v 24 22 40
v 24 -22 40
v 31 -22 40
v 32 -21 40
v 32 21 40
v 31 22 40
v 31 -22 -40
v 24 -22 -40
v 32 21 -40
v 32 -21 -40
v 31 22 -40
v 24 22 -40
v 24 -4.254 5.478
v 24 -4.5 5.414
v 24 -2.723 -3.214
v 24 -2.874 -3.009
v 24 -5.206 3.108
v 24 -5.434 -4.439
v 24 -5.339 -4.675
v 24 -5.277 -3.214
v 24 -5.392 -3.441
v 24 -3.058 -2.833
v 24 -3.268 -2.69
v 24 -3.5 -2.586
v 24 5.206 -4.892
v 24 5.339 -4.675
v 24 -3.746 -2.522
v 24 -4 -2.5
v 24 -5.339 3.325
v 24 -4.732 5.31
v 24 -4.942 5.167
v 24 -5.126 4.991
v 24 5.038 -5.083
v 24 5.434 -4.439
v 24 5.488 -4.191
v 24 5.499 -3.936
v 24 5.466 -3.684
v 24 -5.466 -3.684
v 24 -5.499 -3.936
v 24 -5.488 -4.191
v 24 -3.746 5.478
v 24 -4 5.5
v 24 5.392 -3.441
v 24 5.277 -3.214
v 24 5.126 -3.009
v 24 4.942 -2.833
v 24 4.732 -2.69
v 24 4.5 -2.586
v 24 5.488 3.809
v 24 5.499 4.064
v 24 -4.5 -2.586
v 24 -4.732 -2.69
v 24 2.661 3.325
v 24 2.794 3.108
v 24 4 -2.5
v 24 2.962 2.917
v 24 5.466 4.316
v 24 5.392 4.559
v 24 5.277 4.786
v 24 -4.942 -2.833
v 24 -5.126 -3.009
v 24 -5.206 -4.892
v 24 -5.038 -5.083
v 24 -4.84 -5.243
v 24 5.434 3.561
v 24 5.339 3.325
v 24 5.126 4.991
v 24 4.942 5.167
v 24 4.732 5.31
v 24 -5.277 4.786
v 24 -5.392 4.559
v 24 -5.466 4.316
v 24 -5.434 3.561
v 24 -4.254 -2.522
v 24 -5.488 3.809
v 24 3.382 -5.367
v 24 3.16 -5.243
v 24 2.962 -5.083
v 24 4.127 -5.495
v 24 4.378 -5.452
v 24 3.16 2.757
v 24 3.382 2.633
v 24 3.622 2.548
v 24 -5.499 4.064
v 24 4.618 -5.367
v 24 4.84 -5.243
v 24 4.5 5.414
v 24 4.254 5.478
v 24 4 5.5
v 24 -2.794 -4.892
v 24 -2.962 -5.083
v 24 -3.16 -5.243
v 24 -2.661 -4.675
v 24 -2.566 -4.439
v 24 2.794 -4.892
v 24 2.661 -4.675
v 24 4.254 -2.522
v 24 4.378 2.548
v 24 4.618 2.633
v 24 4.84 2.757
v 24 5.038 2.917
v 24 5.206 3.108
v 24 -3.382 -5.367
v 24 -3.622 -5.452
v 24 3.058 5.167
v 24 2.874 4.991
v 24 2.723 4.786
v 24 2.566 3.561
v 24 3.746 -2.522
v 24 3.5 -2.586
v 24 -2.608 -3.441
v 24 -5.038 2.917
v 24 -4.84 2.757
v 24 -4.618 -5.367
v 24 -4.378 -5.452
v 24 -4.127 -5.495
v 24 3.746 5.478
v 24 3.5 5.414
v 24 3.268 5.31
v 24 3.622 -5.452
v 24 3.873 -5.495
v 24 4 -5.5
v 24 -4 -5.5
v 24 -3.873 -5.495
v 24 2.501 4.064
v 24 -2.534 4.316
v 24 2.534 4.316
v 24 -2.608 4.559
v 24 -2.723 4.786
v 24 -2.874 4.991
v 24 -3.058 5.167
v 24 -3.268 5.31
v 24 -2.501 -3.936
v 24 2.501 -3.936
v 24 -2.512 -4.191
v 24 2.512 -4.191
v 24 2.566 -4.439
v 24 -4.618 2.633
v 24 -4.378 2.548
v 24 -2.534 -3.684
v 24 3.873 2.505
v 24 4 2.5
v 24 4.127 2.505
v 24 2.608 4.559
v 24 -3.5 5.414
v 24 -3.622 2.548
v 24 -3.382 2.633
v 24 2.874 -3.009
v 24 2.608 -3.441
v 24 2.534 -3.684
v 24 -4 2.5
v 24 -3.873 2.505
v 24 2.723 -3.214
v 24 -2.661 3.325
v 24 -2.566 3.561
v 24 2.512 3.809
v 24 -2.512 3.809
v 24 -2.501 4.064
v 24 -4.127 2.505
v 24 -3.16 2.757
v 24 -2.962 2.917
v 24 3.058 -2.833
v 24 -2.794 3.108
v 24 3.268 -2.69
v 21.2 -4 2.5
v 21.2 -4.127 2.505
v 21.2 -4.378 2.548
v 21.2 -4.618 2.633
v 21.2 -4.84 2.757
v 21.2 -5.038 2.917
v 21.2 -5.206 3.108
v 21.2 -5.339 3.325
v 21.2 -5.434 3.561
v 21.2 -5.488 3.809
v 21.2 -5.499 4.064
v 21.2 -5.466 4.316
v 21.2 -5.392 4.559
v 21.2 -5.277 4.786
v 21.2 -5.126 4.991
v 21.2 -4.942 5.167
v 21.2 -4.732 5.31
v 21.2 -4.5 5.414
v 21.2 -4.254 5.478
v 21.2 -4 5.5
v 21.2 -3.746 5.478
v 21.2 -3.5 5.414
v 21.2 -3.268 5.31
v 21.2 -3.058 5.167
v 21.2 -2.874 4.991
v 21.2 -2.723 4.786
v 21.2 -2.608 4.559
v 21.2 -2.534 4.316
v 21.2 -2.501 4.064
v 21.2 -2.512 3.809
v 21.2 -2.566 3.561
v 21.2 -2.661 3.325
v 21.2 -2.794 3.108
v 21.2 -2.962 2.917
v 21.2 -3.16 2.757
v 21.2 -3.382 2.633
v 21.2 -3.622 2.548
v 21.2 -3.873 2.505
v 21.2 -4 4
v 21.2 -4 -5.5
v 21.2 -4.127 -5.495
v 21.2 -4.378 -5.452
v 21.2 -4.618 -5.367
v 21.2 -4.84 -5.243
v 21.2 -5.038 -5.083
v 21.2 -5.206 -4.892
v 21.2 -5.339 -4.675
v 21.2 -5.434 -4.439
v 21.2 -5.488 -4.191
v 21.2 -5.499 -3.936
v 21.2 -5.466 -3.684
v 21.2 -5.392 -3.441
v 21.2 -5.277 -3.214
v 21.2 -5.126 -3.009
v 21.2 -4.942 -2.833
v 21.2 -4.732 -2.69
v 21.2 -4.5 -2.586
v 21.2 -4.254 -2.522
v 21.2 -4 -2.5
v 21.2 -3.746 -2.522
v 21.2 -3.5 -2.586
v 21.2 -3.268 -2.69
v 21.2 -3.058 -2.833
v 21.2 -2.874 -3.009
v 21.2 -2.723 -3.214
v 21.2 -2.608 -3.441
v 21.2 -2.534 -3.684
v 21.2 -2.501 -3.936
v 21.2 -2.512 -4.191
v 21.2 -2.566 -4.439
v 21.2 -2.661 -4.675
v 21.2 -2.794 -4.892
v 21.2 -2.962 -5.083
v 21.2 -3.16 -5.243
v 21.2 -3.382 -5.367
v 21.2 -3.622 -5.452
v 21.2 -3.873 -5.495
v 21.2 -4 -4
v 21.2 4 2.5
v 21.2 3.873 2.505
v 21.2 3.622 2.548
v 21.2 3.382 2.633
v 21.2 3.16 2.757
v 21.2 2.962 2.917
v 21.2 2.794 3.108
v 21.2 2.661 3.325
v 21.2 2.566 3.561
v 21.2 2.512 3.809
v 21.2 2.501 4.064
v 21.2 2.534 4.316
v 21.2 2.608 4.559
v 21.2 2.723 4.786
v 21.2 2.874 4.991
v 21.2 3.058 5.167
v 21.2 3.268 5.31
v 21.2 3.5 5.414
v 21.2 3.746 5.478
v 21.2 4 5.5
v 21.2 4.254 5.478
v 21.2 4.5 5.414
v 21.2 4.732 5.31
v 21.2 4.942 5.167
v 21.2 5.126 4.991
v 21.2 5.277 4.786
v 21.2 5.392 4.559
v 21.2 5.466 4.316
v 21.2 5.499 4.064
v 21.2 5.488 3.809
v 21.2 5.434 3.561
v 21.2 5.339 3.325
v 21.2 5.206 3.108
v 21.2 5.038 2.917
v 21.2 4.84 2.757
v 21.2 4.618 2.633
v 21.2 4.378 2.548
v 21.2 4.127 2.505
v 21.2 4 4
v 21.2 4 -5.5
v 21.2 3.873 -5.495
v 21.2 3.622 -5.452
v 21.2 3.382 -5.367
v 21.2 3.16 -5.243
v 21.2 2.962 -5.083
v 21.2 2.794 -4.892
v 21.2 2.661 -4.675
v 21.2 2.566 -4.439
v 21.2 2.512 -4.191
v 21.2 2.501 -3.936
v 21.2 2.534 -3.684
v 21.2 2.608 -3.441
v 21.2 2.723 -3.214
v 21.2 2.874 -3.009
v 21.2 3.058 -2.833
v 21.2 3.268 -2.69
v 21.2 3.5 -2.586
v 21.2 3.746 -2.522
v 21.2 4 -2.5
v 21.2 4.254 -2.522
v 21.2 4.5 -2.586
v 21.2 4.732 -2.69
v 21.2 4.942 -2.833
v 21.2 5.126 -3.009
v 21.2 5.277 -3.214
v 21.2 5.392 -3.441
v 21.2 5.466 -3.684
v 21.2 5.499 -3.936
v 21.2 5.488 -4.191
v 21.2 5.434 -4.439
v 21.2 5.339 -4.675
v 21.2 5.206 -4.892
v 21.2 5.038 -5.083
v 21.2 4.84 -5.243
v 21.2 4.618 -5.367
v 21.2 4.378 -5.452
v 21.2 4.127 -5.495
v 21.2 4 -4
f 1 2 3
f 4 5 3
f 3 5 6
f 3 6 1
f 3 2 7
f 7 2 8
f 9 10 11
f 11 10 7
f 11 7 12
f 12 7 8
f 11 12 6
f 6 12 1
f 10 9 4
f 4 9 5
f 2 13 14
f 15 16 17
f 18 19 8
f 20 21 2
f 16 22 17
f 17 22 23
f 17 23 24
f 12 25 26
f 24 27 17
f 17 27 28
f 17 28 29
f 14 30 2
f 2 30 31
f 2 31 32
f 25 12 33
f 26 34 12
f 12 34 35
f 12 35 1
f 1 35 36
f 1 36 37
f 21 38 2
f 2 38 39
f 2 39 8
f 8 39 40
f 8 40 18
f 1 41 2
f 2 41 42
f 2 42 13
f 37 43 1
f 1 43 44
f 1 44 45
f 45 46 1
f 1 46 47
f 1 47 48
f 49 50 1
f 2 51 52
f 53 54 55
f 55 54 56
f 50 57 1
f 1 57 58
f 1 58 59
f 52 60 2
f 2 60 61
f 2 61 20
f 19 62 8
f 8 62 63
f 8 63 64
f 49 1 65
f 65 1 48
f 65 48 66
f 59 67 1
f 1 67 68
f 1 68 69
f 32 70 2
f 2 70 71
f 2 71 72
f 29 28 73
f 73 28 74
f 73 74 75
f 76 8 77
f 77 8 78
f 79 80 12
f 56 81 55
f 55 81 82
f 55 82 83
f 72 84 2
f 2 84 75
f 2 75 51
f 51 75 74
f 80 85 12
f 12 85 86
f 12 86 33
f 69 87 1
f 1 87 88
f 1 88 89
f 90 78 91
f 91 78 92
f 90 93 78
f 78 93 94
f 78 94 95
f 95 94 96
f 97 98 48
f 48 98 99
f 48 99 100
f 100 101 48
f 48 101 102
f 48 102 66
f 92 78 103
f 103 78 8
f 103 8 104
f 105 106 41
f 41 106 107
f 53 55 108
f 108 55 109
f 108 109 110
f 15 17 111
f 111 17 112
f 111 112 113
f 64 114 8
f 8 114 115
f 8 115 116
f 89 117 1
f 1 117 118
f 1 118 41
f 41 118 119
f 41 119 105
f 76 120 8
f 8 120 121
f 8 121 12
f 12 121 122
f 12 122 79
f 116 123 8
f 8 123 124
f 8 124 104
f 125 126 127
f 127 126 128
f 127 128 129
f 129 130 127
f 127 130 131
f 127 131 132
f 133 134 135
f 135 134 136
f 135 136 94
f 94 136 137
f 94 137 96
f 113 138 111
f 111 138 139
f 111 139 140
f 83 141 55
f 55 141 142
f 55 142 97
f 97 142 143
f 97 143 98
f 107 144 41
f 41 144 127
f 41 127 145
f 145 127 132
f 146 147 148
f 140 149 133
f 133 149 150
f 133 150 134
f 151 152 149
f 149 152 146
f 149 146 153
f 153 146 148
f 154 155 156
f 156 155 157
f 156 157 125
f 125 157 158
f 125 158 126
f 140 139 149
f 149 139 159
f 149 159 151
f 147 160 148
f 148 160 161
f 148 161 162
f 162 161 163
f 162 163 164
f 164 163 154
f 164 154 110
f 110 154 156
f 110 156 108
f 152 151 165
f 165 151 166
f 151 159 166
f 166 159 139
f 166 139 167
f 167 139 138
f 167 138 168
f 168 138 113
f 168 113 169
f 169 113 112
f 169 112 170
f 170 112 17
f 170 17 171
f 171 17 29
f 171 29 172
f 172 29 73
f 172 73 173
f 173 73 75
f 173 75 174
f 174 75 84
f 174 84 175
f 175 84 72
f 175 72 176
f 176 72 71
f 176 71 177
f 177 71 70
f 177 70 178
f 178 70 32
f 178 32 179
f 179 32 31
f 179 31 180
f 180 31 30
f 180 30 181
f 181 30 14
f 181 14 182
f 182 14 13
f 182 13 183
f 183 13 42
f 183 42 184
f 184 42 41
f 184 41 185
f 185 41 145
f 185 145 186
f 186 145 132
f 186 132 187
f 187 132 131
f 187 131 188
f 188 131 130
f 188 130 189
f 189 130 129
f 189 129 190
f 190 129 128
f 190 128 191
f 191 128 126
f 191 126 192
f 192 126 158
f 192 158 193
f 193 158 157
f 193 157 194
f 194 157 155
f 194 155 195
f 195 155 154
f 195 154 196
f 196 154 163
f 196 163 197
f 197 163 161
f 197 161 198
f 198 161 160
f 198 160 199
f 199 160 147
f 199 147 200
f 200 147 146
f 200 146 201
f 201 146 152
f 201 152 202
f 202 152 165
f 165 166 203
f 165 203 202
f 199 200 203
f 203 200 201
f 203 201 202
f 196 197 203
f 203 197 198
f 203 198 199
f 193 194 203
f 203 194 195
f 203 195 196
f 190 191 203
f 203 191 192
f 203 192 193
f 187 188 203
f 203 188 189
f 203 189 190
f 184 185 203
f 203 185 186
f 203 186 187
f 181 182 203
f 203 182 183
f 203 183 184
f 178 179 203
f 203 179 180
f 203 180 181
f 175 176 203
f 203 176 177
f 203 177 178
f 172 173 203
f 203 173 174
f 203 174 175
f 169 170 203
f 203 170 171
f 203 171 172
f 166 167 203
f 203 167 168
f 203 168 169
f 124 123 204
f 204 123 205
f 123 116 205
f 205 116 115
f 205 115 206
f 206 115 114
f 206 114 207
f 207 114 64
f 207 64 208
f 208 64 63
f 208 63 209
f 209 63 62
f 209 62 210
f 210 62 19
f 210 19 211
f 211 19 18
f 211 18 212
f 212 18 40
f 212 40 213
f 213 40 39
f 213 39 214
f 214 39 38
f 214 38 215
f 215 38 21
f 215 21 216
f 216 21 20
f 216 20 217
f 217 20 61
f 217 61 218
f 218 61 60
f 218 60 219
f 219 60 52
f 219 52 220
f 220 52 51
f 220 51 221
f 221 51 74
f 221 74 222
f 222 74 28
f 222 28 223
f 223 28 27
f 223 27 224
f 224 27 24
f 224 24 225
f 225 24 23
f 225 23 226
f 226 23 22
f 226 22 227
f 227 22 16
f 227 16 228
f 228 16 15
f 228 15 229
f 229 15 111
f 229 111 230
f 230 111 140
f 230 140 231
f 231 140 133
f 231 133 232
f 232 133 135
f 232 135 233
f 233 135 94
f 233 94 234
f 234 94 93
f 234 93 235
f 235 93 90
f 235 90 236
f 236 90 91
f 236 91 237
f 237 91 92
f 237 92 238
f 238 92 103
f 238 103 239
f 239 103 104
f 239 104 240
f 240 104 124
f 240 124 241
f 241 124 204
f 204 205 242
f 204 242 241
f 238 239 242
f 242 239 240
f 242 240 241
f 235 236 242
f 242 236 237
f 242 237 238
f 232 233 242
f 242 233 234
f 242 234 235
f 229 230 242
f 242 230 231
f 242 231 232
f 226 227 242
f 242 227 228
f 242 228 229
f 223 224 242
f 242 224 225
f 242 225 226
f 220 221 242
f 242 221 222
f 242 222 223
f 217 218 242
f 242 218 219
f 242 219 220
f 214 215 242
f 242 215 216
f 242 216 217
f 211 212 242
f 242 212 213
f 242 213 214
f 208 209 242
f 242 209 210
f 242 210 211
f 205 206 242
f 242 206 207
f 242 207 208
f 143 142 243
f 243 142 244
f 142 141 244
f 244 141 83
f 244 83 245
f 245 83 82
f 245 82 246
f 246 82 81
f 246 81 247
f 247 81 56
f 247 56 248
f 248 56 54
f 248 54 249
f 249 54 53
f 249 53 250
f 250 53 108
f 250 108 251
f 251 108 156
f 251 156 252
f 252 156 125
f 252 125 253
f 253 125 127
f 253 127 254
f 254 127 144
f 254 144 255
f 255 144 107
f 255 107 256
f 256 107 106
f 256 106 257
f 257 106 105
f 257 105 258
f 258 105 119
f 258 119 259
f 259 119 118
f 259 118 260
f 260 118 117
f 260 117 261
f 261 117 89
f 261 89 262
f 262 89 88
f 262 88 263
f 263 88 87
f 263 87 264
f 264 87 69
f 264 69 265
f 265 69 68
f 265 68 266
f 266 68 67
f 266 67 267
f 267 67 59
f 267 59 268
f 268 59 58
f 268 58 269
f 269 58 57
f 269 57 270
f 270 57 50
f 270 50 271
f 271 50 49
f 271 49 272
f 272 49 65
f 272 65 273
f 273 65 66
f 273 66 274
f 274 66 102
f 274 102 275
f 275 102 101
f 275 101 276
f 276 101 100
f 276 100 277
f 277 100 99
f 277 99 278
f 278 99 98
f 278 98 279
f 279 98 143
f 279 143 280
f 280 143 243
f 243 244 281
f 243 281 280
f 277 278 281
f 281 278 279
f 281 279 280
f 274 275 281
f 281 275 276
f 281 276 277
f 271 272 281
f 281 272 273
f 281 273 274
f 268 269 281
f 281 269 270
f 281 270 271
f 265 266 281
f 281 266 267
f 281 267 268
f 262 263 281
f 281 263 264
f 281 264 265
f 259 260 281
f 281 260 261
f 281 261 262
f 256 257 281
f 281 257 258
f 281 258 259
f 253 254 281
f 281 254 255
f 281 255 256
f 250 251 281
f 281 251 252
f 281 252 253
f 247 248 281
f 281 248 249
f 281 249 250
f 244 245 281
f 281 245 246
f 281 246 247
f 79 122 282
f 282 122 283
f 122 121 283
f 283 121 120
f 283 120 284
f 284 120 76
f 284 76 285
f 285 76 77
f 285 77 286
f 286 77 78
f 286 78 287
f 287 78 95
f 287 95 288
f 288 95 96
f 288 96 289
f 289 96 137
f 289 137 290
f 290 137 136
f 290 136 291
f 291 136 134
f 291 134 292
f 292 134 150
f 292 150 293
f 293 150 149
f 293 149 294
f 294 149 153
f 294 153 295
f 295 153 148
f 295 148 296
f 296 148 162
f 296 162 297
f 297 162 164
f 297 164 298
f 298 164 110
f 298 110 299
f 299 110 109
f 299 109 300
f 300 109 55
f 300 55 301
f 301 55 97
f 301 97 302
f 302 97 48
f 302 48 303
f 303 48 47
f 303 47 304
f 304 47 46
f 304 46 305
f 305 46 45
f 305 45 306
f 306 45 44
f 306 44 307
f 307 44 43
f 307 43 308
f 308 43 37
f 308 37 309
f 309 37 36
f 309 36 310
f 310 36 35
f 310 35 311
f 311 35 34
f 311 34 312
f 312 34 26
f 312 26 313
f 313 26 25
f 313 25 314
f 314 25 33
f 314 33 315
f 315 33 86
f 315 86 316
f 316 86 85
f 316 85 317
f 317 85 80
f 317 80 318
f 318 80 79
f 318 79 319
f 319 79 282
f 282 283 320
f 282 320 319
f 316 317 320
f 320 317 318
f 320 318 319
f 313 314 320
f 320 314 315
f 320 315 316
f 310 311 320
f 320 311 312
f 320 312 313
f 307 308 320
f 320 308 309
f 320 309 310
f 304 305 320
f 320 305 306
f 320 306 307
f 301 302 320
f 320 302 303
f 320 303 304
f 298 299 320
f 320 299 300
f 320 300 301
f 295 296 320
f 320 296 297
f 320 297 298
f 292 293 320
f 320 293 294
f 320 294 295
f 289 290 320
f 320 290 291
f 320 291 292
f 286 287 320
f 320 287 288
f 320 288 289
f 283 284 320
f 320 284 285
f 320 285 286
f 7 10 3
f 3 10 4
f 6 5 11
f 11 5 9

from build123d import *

# Parameters (mm, degrees)
SKETCH1_W           = 80
SKETCH1_H           = 44
BOSS_EXTRUDE1_DEPTH = 8
SKETCH2_R           = 1.5
BOSS_EXTRUDE2_DEPTH = 2.8
CHAMFER1_SIZE       = 1


with BuildPart() as part:
    # Sketch1 → Boss-Extrude1 (new body)
    with BuildSketch(Plane(origin=(24, 0, 0), x_dir=(0, 0, -1), z_dir=(1, 0, 0))):
        Rectangle(SKETCH1_W, SKETCH1_H)
    extrude(amount=BOSS_EXTRUDE1_DEPTH)

    # Sketch2 → Boss-Extrude2 (add)
    with BuildSketch(Plane(origin=(21.2, 0, 0), x_dir=(0, 0, -1), z_dir=(1, 0, 0))):
        with Locations((-4, -4)):
            Circle(SKETCH2_R)
        with Locations((4, -4)):
            Circle(SKETCH2_R)
        with Locations((-4, 4)):
            Circle(SKETCH2_R)
        with Locations((4, 4)):
            Circle(SKETCH2_R)
    extrude(amount=BOSS_EXTRUDE2_DEPTH)

    # Chamfer1
    chamfer1_edges = [part.edges().sort_by_distance(p)[0] for p in [
        (32, 22, 0),
        (32, -22, 0),
    ]]
    chamfer(chamfer1_edges, length=CHAMFER1_SIZE)


solid = part.part
